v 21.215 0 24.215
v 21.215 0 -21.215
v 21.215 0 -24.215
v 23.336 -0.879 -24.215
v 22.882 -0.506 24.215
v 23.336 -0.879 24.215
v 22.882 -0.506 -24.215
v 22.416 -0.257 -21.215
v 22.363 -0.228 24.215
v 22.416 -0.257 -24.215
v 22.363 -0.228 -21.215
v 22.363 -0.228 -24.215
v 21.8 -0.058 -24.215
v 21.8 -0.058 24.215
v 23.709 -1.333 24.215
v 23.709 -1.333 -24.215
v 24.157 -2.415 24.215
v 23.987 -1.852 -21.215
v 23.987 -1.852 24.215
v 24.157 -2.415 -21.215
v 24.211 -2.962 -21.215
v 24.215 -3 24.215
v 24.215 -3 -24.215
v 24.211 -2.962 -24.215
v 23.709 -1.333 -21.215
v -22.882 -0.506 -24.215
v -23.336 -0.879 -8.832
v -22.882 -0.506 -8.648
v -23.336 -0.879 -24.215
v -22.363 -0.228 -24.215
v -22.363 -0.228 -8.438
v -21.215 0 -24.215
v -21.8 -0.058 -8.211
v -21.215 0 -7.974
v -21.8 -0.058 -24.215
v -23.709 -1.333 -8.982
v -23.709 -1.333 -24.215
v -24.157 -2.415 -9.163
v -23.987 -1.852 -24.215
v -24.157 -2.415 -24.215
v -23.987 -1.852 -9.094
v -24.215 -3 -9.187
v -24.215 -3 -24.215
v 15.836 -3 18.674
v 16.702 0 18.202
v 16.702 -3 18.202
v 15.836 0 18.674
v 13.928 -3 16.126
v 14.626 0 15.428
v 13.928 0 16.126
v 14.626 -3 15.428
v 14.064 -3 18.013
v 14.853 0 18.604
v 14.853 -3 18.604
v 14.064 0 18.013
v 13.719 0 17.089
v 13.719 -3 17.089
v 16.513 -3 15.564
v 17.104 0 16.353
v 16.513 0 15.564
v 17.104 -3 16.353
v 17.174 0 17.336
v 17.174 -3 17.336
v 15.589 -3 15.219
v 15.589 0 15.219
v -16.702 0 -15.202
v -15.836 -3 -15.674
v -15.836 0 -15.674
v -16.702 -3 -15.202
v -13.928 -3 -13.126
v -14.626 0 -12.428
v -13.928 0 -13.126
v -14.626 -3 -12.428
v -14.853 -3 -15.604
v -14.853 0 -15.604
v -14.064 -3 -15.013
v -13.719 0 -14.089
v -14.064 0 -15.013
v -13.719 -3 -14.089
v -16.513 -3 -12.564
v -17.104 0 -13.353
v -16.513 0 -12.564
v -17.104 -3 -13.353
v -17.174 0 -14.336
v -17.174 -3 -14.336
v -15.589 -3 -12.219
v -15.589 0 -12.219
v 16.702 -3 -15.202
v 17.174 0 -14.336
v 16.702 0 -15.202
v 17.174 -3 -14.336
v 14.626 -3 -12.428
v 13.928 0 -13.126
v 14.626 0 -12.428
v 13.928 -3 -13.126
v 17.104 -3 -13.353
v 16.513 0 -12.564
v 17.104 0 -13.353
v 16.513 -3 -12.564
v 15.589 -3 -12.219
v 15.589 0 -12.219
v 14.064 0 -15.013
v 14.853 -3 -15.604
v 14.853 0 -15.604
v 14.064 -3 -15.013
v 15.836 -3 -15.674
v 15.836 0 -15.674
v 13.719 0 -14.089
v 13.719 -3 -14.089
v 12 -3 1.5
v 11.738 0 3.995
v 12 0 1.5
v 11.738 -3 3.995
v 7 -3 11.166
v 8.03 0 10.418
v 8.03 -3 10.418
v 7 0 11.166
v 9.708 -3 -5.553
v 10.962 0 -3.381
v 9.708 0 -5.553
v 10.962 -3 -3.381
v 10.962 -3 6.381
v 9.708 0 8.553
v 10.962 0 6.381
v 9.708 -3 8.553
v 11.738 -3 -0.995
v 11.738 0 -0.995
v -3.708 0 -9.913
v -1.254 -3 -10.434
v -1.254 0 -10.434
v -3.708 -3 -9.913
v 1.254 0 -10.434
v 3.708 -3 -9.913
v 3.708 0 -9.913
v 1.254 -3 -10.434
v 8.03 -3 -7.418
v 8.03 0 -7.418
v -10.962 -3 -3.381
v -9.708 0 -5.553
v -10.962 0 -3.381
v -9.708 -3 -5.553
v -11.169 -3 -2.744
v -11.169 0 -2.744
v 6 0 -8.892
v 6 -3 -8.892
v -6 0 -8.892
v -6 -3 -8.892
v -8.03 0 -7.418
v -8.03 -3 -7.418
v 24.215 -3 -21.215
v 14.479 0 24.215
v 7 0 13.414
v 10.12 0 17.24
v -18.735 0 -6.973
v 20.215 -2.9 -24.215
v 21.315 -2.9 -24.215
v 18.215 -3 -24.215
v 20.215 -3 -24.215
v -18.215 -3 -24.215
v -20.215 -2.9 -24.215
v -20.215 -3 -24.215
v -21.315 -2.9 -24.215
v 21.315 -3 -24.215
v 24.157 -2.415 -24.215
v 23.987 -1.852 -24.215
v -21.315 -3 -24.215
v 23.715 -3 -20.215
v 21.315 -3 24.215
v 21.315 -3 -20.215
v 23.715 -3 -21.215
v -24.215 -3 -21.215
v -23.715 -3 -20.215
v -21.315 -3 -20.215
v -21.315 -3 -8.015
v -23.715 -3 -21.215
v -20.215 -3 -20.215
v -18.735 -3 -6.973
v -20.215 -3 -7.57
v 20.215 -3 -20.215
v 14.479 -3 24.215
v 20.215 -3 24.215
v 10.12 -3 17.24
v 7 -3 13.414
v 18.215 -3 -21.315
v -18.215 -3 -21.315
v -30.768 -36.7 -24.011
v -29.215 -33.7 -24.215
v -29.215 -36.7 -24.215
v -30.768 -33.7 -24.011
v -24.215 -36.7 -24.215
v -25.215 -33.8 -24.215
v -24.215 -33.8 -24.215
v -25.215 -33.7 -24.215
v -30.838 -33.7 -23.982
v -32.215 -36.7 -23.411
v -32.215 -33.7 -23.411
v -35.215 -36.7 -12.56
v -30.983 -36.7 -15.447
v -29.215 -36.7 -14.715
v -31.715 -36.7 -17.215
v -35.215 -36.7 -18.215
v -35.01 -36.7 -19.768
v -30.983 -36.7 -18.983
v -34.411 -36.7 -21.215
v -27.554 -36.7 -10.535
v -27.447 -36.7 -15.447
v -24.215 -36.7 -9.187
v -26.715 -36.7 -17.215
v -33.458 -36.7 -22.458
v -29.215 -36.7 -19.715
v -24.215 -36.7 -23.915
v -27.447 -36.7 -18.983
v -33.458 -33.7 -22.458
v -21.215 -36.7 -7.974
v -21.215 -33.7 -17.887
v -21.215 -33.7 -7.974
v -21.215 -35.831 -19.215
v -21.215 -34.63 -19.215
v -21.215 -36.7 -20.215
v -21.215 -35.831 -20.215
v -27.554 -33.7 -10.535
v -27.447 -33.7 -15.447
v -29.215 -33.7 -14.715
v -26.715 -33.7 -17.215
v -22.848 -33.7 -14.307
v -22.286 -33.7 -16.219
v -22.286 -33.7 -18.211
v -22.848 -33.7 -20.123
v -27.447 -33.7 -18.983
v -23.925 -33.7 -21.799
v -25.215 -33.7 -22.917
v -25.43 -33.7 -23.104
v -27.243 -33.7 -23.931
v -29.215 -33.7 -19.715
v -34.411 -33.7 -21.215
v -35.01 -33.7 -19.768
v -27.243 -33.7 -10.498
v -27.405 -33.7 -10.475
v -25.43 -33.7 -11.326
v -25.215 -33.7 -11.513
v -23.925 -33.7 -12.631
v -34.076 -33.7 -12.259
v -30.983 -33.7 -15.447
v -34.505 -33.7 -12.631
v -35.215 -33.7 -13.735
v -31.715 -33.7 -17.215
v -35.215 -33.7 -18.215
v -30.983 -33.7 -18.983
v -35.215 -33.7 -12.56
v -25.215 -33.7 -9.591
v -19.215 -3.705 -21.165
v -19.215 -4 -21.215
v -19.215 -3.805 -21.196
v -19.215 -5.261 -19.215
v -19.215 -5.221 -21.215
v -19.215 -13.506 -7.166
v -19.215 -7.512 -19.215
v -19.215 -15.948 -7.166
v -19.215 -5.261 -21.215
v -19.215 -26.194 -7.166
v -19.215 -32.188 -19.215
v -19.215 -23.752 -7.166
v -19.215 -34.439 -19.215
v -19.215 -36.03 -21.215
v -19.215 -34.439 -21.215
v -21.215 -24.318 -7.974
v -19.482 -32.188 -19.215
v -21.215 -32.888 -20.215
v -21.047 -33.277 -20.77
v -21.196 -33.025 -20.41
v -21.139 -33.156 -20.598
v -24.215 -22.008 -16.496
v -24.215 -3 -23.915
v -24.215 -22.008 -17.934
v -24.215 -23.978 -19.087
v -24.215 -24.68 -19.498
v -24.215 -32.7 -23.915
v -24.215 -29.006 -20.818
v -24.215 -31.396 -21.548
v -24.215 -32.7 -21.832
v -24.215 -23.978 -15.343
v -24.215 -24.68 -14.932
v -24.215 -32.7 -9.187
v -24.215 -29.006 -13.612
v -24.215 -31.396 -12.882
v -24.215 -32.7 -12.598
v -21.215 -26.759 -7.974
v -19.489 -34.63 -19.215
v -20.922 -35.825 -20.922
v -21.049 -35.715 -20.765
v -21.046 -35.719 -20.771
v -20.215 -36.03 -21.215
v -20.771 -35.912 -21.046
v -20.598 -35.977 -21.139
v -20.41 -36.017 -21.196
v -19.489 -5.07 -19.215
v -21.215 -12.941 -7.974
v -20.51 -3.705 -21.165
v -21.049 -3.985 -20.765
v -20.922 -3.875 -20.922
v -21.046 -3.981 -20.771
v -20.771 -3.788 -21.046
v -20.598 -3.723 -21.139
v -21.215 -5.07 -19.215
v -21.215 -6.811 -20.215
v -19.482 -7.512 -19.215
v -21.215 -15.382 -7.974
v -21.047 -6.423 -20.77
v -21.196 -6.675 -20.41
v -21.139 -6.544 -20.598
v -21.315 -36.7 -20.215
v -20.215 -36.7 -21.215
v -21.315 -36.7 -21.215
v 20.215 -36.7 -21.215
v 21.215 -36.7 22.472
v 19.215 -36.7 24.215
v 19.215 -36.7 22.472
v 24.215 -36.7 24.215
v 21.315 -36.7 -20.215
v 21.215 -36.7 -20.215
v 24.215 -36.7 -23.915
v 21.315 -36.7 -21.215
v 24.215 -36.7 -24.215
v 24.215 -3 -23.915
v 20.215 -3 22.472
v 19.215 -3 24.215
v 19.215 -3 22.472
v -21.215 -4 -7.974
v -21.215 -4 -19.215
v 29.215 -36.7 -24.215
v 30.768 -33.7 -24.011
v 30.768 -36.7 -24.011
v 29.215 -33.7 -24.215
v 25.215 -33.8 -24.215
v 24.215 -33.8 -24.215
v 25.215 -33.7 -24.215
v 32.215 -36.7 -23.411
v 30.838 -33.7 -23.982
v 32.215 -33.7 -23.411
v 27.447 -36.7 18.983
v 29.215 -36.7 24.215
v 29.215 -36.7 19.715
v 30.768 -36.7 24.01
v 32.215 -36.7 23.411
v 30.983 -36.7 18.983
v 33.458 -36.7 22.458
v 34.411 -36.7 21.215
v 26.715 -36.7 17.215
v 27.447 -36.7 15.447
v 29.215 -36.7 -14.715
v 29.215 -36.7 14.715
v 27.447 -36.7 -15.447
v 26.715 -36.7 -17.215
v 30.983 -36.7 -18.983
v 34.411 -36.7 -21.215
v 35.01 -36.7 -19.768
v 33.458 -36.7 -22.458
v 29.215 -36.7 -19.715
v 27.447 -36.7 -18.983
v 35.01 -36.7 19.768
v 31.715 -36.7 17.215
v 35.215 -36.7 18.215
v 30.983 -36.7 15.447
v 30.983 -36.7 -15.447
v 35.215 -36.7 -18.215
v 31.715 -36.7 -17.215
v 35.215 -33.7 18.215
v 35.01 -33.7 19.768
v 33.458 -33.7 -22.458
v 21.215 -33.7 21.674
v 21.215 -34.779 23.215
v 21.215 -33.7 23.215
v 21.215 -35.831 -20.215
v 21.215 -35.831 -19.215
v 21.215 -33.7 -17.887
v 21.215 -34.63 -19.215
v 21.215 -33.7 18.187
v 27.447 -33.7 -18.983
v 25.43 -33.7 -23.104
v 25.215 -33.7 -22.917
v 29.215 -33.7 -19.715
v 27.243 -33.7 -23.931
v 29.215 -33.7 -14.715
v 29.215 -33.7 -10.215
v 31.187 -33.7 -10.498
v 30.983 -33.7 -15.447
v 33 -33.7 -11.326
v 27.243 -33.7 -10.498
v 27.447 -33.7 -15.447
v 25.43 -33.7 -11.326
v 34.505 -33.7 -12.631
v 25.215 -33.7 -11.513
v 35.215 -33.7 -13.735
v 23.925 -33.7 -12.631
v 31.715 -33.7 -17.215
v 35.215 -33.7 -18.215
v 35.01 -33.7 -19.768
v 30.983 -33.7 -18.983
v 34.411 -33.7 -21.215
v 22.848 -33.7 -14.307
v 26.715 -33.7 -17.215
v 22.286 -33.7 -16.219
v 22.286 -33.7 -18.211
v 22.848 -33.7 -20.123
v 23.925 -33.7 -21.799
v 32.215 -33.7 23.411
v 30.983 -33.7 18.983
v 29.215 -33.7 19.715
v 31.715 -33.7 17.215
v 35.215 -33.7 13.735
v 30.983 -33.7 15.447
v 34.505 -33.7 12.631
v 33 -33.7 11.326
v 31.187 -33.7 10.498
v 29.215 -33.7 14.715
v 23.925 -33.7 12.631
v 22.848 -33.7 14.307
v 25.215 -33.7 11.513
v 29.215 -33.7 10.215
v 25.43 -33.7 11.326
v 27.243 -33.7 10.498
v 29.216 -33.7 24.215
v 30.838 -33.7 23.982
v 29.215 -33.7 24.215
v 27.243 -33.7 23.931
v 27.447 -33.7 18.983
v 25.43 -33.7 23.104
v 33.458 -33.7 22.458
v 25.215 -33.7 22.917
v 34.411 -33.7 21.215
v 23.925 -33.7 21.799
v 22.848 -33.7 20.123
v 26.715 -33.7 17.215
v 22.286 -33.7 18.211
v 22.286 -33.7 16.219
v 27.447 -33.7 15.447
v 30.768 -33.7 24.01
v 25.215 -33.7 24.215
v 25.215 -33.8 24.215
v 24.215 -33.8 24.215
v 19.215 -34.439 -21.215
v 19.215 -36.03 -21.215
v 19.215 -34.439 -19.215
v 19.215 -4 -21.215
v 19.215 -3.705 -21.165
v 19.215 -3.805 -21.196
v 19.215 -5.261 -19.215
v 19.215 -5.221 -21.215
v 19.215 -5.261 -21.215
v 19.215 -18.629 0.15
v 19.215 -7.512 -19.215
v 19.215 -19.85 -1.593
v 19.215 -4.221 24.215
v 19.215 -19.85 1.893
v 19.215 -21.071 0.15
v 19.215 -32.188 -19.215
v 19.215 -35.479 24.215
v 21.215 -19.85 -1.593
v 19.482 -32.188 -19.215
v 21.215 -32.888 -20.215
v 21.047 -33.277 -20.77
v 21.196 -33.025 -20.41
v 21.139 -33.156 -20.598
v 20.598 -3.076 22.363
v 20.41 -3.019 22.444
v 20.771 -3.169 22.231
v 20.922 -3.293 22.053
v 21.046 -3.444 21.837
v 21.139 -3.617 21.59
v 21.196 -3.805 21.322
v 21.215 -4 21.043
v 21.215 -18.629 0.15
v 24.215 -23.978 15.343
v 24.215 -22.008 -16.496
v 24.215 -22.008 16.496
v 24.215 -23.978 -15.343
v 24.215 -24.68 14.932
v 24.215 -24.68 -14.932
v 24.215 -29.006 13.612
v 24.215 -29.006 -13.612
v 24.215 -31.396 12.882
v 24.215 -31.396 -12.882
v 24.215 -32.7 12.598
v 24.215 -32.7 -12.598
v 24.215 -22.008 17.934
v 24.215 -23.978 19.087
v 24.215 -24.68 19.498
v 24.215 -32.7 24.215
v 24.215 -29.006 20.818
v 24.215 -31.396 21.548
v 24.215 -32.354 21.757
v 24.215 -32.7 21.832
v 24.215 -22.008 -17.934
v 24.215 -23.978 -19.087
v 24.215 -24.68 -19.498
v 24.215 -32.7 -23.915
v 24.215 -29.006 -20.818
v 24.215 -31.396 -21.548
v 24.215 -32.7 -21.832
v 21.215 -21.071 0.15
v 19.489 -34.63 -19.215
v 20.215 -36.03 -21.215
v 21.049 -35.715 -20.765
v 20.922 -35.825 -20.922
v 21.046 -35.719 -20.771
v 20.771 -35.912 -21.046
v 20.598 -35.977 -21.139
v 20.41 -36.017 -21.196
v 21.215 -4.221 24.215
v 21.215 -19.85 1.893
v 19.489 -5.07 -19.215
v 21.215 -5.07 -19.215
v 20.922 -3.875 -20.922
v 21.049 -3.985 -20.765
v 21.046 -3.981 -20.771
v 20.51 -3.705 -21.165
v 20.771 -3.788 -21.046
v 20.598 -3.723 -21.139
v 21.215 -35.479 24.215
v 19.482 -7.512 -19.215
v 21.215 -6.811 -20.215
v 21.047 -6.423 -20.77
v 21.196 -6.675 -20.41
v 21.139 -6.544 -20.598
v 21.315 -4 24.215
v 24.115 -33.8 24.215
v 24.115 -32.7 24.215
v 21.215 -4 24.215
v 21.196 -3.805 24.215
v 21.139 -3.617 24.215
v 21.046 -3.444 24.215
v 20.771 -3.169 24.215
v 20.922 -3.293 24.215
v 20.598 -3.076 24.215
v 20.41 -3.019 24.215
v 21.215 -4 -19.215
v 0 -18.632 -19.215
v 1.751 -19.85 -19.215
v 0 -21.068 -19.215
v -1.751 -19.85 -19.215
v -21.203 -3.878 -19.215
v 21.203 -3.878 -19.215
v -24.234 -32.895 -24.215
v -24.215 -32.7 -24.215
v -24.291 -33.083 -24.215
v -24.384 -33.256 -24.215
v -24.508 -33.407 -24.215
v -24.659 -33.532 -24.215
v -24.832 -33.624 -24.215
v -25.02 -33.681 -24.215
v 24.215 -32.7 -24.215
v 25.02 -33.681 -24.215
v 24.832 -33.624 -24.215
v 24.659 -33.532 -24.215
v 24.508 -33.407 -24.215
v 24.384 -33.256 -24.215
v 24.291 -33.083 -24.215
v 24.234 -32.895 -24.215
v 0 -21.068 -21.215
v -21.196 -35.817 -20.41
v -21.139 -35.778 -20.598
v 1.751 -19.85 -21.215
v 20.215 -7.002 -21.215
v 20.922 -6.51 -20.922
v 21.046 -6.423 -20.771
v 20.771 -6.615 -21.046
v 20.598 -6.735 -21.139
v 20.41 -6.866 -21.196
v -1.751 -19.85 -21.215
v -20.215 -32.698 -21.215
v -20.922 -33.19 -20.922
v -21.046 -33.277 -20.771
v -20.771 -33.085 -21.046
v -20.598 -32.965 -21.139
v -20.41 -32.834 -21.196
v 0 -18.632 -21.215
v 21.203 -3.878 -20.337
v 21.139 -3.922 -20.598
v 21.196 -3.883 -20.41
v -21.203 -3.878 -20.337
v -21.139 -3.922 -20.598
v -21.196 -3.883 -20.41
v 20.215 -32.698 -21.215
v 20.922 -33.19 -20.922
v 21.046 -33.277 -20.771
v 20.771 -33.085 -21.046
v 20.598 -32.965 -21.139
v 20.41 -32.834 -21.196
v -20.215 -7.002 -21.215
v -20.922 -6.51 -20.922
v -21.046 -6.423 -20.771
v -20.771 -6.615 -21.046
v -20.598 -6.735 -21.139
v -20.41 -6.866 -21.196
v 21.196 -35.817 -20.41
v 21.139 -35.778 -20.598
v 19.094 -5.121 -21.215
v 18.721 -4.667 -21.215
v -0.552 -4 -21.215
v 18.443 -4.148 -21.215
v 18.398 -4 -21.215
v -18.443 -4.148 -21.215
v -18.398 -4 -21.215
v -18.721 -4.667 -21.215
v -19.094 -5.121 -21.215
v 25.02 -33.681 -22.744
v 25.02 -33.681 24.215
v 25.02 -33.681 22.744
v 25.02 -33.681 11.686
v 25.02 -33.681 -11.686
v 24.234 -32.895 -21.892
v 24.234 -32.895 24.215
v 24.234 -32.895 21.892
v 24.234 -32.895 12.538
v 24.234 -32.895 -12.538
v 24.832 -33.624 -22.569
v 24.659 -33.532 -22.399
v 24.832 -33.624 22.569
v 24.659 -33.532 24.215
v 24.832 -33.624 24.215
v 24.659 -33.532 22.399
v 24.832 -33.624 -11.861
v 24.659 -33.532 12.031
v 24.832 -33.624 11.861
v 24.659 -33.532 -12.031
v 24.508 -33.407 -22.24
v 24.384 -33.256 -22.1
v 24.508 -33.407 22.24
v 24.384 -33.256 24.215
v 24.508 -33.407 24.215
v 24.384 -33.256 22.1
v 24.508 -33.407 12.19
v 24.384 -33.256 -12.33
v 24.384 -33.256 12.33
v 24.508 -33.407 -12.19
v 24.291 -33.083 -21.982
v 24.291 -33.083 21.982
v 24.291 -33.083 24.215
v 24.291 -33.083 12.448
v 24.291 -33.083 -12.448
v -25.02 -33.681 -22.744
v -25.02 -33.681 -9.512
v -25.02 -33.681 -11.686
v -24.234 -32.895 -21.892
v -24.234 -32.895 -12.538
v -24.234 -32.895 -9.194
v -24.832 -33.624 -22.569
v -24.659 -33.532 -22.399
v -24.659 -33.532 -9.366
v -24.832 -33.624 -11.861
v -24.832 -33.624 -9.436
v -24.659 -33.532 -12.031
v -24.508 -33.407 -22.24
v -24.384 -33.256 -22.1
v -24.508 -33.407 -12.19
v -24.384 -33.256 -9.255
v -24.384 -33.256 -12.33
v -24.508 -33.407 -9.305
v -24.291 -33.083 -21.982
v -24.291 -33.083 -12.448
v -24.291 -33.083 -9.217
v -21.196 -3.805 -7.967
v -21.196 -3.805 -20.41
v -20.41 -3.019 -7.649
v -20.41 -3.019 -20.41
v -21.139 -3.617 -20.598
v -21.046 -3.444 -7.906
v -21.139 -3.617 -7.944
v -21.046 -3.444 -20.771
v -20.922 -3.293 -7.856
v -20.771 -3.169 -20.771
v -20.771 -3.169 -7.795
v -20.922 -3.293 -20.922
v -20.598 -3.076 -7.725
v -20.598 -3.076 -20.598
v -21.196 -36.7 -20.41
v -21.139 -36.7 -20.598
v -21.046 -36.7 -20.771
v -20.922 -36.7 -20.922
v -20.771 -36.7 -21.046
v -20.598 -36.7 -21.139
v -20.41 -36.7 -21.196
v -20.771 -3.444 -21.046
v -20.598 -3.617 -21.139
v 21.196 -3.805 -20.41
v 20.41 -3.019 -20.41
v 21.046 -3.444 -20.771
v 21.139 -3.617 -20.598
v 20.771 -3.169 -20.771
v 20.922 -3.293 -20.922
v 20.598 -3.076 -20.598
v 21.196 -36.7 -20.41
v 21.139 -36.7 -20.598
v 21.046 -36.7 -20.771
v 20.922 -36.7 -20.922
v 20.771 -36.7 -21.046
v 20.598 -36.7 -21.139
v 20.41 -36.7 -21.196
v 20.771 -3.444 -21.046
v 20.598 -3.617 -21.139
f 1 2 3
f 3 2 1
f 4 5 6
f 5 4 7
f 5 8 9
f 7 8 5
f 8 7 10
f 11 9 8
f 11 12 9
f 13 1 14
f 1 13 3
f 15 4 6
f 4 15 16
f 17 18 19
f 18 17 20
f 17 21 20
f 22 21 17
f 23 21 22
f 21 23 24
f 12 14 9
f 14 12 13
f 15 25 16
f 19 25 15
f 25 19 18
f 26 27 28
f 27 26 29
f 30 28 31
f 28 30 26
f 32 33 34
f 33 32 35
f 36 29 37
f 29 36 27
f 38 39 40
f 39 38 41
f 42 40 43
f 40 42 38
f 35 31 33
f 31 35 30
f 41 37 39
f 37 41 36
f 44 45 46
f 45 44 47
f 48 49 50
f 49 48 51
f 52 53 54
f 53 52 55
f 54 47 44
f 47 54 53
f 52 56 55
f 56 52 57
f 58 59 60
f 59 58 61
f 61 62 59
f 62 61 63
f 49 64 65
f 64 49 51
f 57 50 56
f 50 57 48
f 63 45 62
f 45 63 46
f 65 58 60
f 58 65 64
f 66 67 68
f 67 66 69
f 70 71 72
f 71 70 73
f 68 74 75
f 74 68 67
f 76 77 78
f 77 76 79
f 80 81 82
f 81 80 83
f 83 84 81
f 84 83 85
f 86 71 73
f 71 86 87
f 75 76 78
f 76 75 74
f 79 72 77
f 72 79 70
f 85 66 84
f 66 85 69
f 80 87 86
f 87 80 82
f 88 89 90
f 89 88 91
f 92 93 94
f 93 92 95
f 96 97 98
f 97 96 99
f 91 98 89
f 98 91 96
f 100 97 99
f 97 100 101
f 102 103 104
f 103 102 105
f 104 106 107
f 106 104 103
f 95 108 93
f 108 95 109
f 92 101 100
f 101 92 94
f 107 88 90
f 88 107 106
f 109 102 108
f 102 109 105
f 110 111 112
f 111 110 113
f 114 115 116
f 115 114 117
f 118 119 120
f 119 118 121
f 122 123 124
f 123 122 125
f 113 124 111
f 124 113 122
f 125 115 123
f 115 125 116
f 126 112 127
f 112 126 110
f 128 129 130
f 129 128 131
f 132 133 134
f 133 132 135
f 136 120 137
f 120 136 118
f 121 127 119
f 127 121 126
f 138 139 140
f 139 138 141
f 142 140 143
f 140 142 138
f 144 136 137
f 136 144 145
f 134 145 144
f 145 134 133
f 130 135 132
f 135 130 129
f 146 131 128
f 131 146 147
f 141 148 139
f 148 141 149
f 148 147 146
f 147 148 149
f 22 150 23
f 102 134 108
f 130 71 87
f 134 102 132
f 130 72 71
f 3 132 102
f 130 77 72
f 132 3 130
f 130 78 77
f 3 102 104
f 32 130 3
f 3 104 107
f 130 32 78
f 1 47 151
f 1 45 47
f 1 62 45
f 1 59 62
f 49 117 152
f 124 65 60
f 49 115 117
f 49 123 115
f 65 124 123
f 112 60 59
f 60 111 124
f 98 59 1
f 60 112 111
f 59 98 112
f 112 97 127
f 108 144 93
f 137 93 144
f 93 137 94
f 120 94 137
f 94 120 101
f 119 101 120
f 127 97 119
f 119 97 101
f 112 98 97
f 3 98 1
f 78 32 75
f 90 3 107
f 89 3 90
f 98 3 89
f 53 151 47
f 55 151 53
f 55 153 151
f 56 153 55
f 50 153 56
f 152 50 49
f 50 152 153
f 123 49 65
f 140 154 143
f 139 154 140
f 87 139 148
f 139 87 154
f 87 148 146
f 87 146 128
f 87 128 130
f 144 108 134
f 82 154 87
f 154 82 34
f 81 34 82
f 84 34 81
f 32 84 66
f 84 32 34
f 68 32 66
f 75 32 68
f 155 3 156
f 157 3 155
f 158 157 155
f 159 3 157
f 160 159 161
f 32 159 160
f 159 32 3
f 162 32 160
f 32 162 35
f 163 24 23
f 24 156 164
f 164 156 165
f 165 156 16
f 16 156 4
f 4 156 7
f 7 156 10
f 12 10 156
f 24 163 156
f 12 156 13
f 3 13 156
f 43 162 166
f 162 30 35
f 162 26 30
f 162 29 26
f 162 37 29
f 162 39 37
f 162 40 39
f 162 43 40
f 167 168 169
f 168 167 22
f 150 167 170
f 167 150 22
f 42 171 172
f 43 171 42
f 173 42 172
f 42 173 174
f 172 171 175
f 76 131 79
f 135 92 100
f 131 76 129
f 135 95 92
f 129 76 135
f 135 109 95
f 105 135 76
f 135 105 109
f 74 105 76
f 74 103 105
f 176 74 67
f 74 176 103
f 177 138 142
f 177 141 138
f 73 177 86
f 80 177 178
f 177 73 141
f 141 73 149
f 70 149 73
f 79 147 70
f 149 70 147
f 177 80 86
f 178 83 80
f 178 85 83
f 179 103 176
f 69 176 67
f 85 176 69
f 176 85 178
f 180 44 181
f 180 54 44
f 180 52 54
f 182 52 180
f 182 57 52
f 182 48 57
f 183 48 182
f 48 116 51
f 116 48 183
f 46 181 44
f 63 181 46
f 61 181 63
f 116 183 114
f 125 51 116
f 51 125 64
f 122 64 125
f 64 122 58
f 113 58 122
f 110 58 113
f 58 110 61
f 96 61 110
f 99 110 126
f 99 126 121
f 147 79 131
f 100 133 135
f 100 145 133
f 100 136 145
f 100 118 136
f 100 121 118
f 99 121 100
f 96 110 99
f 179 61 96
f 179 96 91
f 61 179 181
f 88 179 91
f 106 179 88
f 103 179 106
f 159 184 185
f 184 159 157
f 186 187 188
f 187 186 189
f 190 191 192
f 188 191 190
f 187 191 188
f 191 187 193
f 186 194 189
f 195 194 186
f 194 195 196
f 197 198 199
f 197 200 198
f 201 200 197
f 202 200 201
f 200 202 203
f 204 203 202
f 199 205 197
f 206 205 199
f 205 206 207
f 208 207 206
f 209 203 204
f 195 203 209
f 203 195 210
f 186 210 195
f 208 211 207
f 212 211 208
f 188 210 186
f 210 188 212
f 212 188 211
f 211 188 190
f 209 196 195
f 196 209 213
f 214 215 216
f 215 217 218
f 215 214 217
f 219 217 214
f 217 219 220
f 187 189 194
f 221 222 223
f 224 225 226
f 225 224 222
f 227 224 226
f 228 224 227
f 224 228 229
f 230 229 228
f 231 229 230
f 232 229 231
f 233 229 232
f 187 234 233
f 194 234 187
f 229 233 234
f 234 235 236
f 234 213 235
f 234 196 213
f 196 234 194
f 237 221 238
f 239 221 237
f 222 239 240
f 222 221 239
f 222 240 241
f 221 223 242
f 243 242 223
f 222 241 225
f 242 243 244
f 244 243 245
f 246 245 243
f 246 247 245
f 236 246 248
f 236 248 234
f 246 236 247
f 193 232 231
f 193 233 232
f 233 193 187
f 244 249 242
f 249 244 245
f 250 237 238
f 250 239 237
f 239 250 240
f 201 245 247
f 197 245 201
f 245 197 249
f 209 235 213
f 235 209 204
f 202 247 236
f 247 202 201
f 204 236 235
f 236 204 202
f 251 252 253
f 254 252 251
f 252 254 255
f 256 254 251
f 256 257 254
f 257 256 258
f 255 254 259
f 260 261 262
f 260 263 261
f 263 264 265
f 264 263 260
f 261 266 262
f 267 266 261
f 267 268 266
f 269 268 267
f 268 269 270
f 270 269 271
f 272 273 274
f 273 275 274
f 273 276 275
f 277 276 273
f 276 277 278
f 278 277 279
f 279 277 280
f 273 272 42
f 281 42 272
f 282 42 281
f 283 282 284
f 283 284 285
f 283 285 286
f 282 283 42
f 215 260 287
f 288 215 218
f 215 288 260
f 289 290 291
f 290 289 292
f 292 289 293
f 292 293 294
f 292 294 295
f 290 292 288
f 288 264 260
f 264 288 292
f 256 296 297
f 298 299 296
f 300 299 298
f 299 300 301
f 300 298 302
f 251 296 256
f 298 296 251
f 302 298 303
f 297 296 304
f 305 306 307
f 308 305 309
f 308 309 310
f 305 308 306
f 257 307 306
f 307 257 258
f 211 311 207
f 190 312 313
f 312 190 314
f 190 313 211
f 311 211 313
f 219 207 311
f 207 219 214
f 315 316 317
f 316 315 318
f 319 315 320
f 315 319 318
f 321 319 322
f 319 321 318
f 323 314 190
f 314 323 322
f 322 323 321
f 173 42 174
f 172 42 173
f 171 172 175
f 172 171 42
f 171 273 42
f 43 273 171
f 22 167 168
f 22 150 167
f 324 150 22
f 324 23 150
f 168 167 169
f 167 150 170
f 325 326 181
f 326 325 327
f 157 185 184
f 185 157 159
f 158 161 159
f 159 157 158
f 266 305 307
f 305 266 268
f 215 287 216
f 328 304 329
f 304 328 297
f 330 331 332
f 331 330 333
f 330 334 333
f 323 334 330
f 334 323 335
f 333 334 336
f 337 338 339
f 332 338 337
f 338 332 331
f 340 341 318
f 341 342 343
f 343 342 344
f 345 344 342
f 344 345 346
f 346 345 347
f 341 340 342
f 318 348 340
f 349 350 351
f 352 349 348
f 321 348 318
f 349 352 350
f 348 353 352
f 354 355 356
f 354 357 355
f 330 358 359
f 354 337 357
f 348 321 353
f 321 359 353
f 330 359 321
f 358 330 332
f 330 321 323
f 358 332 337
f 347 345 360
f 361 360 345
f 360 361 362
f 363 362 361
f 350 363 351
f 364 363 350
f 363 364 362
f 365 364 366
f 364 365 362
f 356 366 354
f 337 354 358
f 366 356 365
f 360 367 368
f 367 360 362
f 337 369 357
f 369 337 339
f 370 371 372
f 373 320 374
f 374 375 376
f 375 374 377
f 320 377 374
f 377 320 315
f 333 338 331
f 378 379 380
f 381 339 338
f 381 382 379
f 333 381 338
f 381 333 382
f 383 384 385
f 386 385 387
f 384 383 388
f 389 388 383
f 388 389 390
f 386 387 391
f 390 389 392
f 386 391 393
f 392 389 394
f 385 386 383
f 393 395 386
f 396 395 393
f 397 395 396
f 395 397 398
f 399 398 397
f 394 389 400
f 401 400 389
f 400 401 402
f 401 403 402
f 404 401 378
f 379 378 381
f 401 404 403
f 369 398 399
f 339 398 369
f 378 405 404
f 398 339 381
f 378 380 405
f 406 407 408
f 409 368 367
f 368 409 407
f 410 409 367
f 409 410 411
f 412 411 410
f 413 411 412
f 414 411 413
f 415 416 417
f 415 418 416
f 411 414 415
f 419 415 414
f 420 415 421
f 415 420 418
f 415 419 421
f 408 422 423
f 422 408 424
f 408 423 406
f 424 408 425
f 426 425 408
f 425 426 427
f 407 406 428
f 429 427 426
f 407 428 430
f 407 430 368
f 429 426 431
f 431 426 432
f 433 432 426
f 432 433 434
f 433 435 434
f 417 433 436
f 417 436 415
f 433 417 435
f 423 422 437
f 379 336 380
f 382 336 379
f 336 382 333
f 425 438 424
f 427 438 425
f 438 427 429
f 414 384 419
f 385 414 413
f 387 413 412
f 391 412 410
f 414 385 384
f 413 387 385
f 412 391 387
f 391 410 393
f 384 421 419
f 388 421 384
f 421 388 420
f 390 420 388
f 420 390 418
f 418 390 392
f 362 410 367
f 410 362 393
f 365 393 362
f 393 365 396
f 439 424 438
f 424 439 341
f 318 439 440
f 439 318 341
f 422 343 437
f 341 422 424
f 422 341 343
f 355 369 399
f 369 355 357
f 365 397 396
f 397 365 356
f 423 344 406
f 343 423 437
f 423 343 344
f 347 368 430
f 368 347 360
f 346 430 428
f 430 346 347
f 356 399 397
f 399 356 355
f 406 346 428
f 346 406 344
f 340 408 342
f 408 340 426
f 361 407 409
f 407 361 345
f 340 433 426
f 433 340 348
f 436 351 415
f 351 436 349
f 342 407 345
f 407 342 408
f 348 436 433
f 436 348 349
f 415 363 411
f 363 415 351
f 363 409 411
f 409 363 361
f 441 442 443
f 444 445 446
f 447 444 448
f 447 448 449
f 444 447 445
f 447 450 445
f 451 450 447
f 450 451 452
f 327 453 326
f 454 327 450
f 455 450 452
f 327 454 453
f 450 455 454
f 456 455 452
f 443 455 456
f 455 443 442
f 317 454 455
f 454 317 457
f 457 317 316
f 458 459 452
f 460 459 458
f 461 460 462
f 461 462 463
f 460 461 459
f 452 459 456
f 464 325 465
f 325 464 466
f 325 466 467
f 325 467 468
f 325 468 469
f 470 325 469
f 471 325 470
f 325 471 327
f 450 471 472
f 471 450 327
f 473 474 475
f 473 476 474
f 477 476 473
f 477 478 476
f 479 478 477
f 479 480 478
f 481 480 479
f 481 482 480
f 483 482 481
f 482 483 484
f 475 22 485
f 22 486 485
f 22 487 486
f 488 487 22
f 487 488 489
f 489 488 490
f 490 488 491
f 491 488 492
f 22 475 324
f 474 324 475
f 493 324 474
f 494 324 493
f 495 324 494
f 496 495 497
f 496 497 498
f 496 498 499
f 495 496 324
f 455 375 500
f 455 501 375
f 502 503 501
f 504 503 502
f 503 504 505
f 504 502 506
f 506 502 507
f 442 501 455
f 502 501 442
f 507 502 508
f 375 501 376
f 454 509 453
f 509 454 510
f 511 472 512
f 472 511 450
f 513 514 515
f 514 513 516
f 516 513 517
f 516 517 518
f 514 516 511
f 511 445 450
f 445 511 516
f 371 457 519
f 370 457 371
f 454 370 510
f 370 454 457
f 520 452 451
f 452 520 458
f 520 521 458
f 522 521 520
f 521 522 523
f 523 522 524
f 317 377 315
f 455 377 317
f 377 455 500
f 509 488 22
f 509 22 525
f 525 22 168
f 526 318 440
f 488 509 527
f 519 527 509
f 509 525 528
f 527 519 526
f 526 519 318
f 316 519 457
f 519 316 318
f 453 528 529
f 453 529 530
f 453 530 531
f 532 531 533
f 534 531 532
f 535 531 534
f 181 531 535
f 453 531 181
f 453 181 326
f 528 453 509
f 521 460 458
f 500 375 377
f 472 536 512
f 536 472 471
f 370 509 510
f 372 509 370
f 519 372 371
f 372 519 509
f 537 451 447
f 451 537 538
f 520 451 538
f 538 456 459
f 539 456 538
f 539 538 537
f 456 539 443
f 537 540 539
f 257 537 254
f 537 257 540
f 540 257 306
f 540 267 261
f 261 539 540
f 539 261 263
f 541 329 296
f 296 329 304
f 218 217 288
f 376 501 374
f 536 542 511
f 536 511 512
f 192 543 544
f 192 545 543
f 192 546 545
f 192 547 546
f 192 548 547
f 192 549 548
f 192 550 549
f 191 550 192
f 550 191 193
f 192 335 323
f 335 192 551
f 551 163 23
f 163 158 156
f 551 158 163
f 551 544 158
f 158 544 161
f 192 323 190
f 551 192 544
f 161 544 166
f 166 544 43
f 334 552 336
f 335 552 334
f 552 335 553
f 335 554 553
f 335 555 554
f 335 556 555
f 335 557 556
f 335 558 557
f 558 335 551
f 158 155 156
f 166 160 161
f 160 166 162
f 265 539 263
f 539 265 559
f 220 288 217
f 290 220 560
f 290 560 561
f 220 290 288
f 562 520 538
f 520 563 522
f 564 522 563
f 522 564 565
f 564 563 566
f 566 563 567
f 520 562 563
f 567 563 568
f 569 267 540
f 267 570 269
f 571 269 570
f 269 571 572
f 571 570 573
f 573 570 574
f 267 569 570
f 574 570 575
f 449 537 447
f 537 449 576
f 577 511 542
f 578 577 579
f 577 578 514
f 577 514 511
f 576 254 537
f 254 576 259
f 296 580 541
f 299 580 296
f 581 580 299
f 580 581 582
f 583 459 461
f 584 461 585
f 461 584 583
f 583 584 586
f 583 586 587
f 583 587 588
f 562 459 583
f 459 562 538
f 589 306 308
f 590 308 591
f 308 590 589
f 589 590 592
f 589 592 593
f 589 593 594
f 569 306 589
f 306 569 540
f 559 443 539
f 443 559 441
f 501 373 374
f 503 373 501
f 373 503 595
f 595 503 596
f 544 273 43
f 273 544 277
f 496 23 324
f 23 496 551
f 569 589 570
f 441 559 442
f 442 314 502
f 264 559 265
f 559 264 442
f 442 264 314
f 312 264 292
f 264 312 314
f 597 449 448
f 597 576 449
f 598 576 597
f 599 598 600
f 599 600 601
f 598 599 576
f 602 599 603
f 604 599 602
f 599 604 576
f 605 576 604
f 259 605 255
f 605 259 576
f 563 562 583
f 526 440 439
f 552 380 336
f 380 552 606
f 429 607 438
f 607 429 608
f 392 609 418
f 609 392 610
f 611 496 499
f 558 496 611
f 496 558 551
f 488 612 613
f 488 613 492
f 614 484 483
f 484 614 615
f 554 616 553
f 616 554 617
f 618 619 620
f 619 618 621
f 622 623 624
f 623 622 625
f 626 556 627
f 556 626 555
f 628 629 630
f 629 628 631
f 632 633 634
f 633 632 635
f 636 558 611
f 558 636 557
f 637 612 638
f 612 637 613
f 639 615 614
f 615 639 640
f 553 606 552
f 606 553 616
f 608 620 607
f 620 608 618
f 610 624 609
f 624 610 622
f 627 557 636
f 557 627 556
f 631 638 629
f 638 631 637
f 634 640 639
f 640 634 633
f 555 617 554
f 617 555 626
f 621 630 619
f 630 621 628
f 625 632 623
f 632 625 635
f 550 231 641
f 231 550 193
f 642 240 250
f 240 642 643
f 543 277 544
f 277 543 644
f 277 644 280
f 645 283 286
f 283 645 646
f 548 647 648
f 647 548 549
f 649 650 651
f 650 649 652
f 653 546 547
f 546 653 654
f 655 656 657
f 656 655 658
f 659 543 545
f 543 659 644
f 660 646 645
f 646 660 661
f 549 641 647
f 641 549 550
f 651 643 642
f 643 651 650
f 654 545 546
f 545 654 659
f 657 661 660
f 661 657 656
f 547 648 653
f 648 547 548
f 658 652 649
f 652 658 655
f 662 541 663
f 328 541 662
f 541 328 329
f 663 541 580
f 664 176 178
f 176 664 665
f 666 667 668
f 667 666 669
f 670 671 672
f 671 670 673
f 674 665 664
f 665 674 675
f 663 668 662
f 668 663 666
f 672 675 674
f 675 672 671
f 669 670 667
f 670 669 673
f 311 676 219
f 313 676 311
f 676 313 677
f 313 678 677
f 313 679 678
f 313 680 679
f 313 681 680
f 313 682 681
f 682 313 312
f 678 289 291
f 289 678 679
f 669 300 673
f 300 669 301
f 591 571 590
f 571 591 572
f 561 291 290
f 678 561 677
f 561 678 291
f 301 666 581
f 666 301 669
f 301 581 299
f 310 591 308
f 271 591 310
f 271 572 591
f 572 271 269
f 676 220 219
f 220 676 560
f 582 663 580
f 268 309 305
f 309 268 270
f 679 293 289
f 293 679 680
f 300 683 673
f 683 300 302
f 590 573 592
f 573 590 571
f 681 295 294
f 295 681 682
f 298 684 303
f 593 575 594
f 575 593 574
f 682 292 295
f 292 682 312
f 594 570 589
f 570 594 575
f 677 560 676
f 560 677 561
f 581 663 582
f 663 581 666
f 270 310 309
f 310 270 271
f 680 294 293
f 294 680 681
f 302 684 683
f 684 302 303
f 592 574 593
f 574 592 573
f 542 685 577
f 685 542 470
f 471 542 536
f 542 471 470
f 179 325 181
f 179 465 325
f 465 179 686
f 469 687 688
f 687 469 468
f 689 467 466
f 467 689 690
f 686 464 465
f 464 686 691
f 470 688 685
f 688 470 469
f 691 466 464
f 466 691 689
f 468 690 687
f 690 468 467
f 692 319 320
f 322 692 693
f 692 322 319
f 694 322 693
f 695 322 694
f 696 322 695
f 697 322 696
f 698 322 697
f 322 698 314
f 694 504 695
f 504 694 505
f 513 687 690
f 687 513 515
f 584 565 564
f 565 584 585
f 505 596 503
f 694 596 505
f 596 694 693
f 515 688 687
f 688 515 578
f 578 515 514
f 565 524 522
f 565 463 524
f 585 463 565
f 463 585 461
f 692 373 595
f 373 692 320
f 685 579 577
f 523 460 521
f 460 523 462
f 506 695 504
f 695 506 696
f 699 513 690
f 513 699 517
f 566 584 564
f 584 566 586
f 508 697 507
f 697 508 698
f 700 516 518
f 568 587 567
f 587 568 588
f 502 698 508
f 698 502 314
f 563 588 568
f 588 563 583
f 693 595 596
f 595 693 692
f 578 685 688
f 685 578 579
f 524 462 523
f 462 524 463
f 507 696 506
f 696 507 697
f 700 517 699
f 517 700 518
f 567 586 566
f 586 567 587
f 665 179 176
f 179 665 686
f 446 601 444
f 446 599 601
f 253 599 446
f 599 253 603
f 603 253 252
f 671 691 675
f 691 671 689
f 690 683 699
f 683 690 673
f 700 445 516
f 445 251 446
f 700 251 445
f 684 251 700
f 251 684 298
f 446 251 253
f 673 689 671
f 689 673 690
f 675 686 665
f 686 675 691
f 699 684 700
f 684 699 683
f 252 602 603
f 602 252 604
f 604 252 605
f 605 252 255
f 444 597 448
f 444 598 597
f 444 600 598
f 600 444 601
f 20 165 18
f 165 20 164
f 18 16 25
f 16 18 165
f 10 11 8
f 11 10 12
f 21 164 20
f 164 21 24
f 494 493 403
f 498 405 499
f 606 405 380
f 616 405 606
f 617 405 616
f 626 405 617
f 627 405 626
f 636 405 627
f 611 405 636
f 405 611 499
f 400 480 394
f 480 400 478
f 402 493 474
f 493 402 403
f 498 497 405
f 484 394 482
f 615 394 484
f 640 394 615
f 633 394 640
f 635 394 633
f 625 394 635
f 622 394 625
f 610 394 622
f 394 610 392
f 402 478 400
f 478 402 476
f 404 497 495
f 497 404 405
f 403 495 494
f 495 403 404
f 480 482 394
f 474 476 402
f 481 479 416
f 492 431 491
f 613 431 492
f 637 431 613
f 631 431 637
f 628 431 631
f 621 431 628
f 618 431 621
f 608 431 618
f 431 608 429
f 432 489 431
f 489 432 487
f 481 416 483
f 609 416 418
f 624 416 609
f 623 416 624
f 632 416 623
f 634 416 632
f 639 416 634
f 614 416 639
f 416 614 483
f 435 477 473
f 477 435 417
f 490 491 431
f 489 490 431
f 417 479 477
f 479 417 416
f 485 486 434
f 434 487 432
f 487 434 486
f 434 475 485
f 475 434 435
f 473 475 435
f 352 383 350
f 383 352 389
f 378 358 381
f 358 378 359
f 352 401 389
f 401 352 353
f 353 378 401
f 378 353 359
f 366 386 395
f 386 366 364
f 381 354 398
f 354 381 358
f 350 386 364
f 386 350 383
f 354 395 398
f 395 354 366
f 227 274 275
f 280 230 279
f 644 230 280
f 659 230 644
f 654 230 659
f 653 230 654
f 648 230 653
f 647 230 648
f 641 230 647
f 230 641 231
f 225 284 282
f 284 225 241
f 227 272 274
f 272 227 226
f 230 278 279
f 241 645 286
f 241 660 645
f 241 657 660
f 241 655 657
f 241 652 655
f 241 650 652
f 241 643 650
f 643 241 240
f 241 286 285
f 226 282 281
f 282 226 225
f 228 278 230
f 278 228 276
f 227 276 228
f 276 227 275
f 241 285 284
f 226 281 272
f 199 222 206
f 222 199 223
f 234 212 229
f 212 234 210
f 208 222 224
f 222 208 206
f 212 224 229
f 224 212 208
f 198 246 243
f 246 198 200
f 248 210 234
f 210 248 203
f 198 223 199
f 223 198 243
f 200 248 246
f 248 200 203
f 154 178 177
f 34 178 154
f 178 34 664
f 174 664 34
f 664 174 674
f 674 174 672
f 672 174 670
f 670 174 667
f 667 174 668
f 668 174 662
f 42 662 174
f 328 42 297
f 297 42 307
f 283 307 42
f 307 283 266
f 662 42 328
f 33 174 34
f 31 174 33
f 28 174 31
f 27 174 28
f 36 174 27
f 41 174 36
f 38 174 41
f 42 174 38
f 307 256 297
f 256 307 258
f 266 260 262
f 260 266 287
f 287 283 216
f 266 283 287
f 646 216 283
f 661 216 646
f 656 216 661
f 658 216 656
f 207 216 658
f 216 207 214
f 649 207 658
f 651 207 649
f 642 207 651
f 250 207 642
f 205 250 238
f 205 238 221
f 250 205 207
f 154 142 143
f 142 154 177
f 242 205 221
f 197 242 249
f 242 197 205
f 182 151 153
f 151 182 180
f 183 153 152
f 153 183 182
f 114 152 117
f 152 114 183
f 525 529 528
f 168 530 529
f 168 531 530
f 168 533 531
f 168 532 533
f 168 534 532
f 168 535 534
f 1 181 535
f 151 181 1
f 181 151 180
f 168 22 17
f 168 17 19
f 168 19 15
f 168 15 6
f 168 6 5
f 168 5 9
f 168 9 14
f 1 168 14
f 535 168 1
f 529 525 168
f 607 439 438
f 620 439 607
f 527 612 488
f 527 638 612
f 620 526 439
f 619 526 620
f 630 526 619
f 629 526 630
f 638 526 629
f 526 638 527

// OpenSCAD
// file: sweep.scad
// sweep.scad
//
// This code is copied from
// https://github.com/openscad/list-comprehension-demos
// and
// https://github.com/openscad/scad-utils
// to make hangprinter repo self-contained
// It was included in order to make the worm drive parametric
// In future OpenSCAD (or other script CAD programs)
// worm drives should be will be more easily constructed without
// this user space defined sweep operation.
// See OpenSCAD discussion at:
// https://github.com/openscad/openscad/issues/114

// Look into files
// lists.scad
// X transformations.scad
// linalg.scad
// se3.scad
// so3.scad


// Include modules and fcts:

/// linalg.scad
function vec3(p) = len(p) < 3 ? concat(p,0) : p;
function vec4(p) = let (v3=vec3(p)) len(v3) < 4 ? concat(v3,1) : v3;
function take3(v) = [v[0],v[1],v[2]];
function tail3(v) = [v[3],v[4],v[5]];
function construct_Rt(R,t) = [concat(R[0],t[0]),concat(R[1],t[1]),concat(R[2],t[2]),[0,0,0,1]];

/// so3.scad

function se3_exp_2(t,w) = se3_exp_2_0(t,w,w*w);
function se3_exp_2_0(t,w,theta_sq) =
se3_exp_23(
	so3_exp_2(theta_sq),
	C = (1.0 - theta_sq/20) / 6,
	t=t,w=w);

// Taylor series expansions close to 0
function so3_exp_1(theta_sq) = [
	1 - 1/6*theta_sq,
	0.5
];

function rodrigues_so3_exp(w, A, B) = [
  [1.0 - B*(w[1]*w[1] + w[2]*w[2]), B*(w[0]*w[1]) - A*w[2],          B*(w[0]*w[2]) + A*w[1]],
  [B*(w[0]*w[1]) + A*w[2],          1.0 - B*(w[0]*w[0] + w[2]*w[2]), B*(w[1]*w[2]) - A*w[0]],
  [B*(w[0]*w[2]) - A*w[1],          B*(w[1]*w[2]) + A*w[0],          1.0 - B*(w[0]*w[0] + w[1]*w[1])]
];

function so3_exp_3_0(theta_deg, inv_theta) = [
	sin(theta_deg) * inv_theta,
	(1 - cos(theta_deg)) * (inv_theta * inv_theta)
];

/// se3.scad
function combine_se3_exp(w, ABt) = construct_Rt(rodrigues_so3_exp(w, ABt[0], ABt[1]), ABt[2]);
function se3_exp_1(t,w) = concat(
	so3_exp_1(w*w),
	[t + 0.5 * cross(w,t)]
);

function se3_exp_3(t,w) = se3_exp_3_0(t,w,sqrt(w*w)*180/PI,1/sqrt(w*w));

function se3_exp_23(AB,C,t,w) =
[AB[0], AB[1], t + AB[1] * cross(w,t) + C * cross(w,cross(w,t)) ];

function se3_exp_3_0(t,w,theta_deg,inv_theta) =
se3_exp_23(
	so3_exp_3_0(theta_deg = theta_deg, inv_theta = inv_theta),
	C = (1 - sin(theta_deg) * inv_theta) * (inv_theta * inv_theta),
t=t,w=w);

function se3_exp(mu) = se3_exp_0(t=take3(mu),w=tail3(mu)/180*PI);

function se3_exp_0(t,w) =
combine_se3_exp(w,
// Evaluate by Taylor expansion when near 0
	w*w < 1e-8
	? se3_exp_1(t,w)
	: w*w < 1e-6
	  ? se3_exp_2(t,w)
	  : se3_exp_3(t,w)
);


/// lists.scad
/*!
  Flattens a list one level:

  flatten([[0,1],[2,3]]) => [0,1,2,3]
*/
function flatten(list) = [ for (i = list, v = i) v ];
/*!
  Extracts a subarray from index begin (inclusive) to end (exclusive)

  subarray([1,2,3,4], 1, 2) => [2,3]
*/
function subarray(list,begin=0,end=-1) = [
    let(end = end < 0 ? len(list) : end)
      for (i = [begin : 1 : end-1])
        list[i]
];

/// transformations.scad
//********* Create modifying matrices ***************//
/*!
  Creates a rotation matrix

  xyz = euler angles = rz * ry * rx
  axis = rotation_axis * rotation_angle
*/
function rotation(xyz=undef, axis=undef) =
	xyz != undef && axis != undef ? undef :
	xyz == undef  ? se3_exp([0,0,0,axis[0],axis[1],axis[2]]) :
	len(xyz) == undef ? rotation(axis=[0,0,xyz]) :
	(len(xyz) >= 3 ? rotation(axis=[0,0,xyz[2]]) : identity4()) *
	(len(xyz) >= 2 ? rotation(axis=[0,xyz[1],0]) : identity4()) *
(len(xyz) >= 1 ? rotation(axis=[xyz[0],0,0]) : identity4());

/*!
  Creates a scaling matrix
*/
function scaling(v) = [
	[v[0],0,0,0],
	[0,v[1],0,0],
	[0,0,v[2],0],
	[0,0,0,1],
];

/*!
  Creates a translation matrix
*/
function translation(v) = [
	[1,0,0,v[0]],
	[0,1,0,v[1]],
	[0,0,1,v[2]],
	[0,0,0,1],
];


function project(x) = subarray(x,end=len(x)-1) / x[len(x)-1];

function transform(m, list) = [for (p=list) project(m * vec4(p))];

function to_3d(list) = [ for(v = list) vec3(v) ];

module sweep(shape, path_transforms, closed=false) {

    pathlen = len(path_transforms);
    segments = pathlen + (closed ? 0 : -1);
    shape3d = to_3d(shape);

    function sweep_points() =
      flatten([for (i=[0:pathlen-1])
        transform(path_transforms[i], shape3d)]);

    function loop_faces() = [let (facets=len(shape3d))
        for(s=[0:segments-1], i=[0:facets-1])
          [(s%pathlen) * facets + i,
           (s%pathlen) * facets + (i + 1) % facets,
           ((s + 1) % pathlen) * facets + (i + 1) % facets,
           ((s + 1) % pathlen) * facets + i]];

    bottom_cap = closed ? [] : [[for (i=[len(shape3d)-1:-1:0]) i]];
    top_cap = closed ? [] : [
      [for (i=[0:len(shape3d)-1])
        i+len(shape3d)*(pathlen-1)]];
    polyhedron(points = sweep_points(),
               faces  = concat(loop_faces(),
                               bottom_cap,
                               top_cap),
               convexity=5);
}
// file: gear_parameters.scad
Circular_pitch = 262;

Motor_teeth = 10;
Gear_height = 21.4;
Motor_pitch                      = (Motor_teeth*Circular_pitch/360);
Motor_pitch_diametrial           = Motor_teeth/(2*Motor_pitch);
Motor_outer_radius               = Motor_pitch + 1/Motor_pitch_diametrial;

Spool_teeth = 100;
Spool_r = 50;
Spool_height = 8;
Spool_pitch                      = (Spool_teeth*Circular_pitch/360);
Spool_pitch_diametrial           = Spool_teeth/(2*Spool_pitch);
Spool_outer_radius               = Spool_pitch + 1/Spool_pitch_diametrial;

Torx_depth = 5;
Motor_bracket_depth = Gear_height+1+7+Nema17_ring_height+1+Gap_between_sandwich_and_plate;

Spool_core_flerp0 = 16 + 50/2;
// file: parameters.scad
// Parameters shared between modules

Base_th = 2.8;
Beam_width = 15;
Wiggle = 0.25;
Fat_beam_width = Beam_width + Wiggle;
Beam_length = 400;
Wall_th = 2.5;

Min_beam_width = 12.5;
Max_beam_width = 17.5;
Zip_th = 2;
Zip_h = Zip_th + Max_beam_width - Min_beam_width;
Zip_w = 4.5;

Nema17_cube_width          = 42.43;
Nema17_screw_hole_width    = 43.74; // Opposite corner screws
Nema17_ring_diameter       = 22;
Nema17_cube_height         = 39.36;
Nema17_shaft_height        = 63.65;
Nema17_ring_height         = 2;
Nema17_shaft_radius        = 5/2;

b608_outer_dia = 22.2;
b608_width = 7.05;

Gap_between_sandwich_and_plate = 1.5 + Base_th; // 1.5 mm for wiggle

Clamp_wall_extra_length = 4.5;
Clamp_wall_flex_factor = 1.5;

Motor_bracket_flerp_r = 6;
Motor_bracket_flerp = 14;
Motor_bracket_cw = Nema17_cube_width + 6;
Motor_bracket_att_ang = 50;
// main file
include <parameters.scad>
include <gear_parameters.scad>
use <sweep.scad>
use <util.scad>

motor_bracket();
module motor_bracket(){
  cw = Motor_bracket_cw;
  cd = cw;
  wall_th = Wall_th + 0.5;
  bd = Motor_bracket_depth;
  flerp = Motor_bracket_flerp;
  flerp_h = cw;
  flerp_r = Motor_bracket_flerp_r;

  //crossed_cube([cd, bd-1, wall_th]);
  module crossed_cube(v){
    cross_w = 2;
    cube(v);
    intersection(){
      for(i=[0,1])
        translate([i*v[0],0,0])
          mirror([i,0,0])
            rotate([0,0,atan(v[1]/v[0])])
              translate([0,-cross_w/2,0])
                cube([sqrt(v[0]*v[0]+v[1]*v[1]), cross_w, v[2]+cross_w]);
      translate([0,0,-1])
        cube([v[0], v[1], v[2]+cross_w+2]);
    }
  }

  difference(){
    union(){
      difference(){
        translate([-cd/2, -wall_th, -cw/2])
          cube([cd, wall_th, cw+2]);
        for(k=[0,1])
          mirror([k,0,0])
            translate([cw/2,0, -cw])
            rotate([0,0,2*90])
            inner_round_corner(r=3, h=2*cw, $fn=8*4);
        translate([0,0,1.5])
          rotate([90,0,0]){
            translate([0,0,-1]){
              cylinder(d=Nema17_ring_diameter+2, h=wall_th+2);
              Nema17_screw_holes(3.5, wall_th+2, $fs=1);
            }
          }
      }

      for(k=[[1,0,0], [0,0,0]])
        mirror(k){
          translate([cd/2-wall_th,-bd+wall_th,-cw/2])
            rotate([90,0,0])
            difference(){
              linear_extrude(height=wall_th)
                rounded_2corner([flerp, flerp_h], flerp_r, $fn=4*6);
              translate([flerp-flerp/2+1,flerp/2,-1])
                rotate([0,0,90]){
                  translate([flerp_h-2*flerp/2,0,0])
                    cylinder(r=2.5, h=wall_th+2);
                }
              translate([0,flerp_h,-1])
                mirror([0,1,0])
                inner_round_corner(r=1, h=wall_th+2, $fn=4*8);
            }
          translate([-(-cd/2),-bd,-cw/2+0.3])
            rotate([0,-90,0])
            crossed_cube([cd-0.3, bd-3, wall_th]);
        }

      translate([-cd/2, -bd, -cw/2])
        crossed_cube([cd, bd-3, wall_th]);


      for(k=[0,1])
        mirror([k,0,0])
        translate([cw/2,-bd+wall_th,-cw/2])
        inner_round_corner(r=1, h=cw, $fn=4*8);

      // Round corners
      translate([0,0,-cw/2])
        linear_extrude(height=wall_th)
        translate([0,-2])
        rotate([0,0,90])
        translate([0,-cd/2])
        rounded_2corner([2, cd], 3, $fn=4*8);


      for(k=[0,1]){
        mirror([k,0,0]){

      translate([-cw/2+wall_th,-wall_th,-cw/2])
      rotate([0,0,-90])
      inner_round_corner(r=1, h=cw, $fn=8*4);

          translate([-cd/2+wall_th,-bd,-cw/2+wall_th])
            rotate([-90,0,0])
            rotate([0,0,-90])
            inner_round_corner(r=1, h=bd-1.1, $fn=8*4);
        }
      }

      translate([0,-wall_th,-cw/2+wall_th])
        rotate([0,90,0])
        rotate([0,0,180])
        translate([0,0,-(cd-1)/2])
        inner_round_corner(r=1, h=cd-1, $fn=8*4);
    }

    rotate([0,Motor_bracket_att_ang,0])
      translate([-(Spool_pitch+Motor_pitch),0,0])
      rotate([-90,0,0])
      cylinder(r=Spool_outer_radius+1.5, h = 200, center=true, $fn = 50);
    translate([-20+7,-wall_th-1,0])
      cube(20);

    translate([0,0,50+cw/2])
      cube(100, center=true);

    screw_head_extra_h = 12;
    screw_head_extra_r = 2;
    for(k=[0,1])
      mirror([k,0,0]){
        translate([cd/2-wall_th,-bd+wall_th,-cw/2])
          rotate([90,0,0])
          translate([flerp-flerp/2+1,flerp/2,-1])
          rotate([0,0,90]){
            translate([0,0,-screw_head_extra_h+1])
              cylinder(r1=5.0, r2=5+screw_head_extra_r, h=screw_head_extra_h);
            translate([flerp_h-2*flerp/2,0,-screw_head_extra_h+1])
              cylinder(r1=5.0, r2=5+screw_head_extra_r, h=screw_head_extra_h);
            cylinder(r=2.5, h=wall_th+2);
          }
      }
  }
}
